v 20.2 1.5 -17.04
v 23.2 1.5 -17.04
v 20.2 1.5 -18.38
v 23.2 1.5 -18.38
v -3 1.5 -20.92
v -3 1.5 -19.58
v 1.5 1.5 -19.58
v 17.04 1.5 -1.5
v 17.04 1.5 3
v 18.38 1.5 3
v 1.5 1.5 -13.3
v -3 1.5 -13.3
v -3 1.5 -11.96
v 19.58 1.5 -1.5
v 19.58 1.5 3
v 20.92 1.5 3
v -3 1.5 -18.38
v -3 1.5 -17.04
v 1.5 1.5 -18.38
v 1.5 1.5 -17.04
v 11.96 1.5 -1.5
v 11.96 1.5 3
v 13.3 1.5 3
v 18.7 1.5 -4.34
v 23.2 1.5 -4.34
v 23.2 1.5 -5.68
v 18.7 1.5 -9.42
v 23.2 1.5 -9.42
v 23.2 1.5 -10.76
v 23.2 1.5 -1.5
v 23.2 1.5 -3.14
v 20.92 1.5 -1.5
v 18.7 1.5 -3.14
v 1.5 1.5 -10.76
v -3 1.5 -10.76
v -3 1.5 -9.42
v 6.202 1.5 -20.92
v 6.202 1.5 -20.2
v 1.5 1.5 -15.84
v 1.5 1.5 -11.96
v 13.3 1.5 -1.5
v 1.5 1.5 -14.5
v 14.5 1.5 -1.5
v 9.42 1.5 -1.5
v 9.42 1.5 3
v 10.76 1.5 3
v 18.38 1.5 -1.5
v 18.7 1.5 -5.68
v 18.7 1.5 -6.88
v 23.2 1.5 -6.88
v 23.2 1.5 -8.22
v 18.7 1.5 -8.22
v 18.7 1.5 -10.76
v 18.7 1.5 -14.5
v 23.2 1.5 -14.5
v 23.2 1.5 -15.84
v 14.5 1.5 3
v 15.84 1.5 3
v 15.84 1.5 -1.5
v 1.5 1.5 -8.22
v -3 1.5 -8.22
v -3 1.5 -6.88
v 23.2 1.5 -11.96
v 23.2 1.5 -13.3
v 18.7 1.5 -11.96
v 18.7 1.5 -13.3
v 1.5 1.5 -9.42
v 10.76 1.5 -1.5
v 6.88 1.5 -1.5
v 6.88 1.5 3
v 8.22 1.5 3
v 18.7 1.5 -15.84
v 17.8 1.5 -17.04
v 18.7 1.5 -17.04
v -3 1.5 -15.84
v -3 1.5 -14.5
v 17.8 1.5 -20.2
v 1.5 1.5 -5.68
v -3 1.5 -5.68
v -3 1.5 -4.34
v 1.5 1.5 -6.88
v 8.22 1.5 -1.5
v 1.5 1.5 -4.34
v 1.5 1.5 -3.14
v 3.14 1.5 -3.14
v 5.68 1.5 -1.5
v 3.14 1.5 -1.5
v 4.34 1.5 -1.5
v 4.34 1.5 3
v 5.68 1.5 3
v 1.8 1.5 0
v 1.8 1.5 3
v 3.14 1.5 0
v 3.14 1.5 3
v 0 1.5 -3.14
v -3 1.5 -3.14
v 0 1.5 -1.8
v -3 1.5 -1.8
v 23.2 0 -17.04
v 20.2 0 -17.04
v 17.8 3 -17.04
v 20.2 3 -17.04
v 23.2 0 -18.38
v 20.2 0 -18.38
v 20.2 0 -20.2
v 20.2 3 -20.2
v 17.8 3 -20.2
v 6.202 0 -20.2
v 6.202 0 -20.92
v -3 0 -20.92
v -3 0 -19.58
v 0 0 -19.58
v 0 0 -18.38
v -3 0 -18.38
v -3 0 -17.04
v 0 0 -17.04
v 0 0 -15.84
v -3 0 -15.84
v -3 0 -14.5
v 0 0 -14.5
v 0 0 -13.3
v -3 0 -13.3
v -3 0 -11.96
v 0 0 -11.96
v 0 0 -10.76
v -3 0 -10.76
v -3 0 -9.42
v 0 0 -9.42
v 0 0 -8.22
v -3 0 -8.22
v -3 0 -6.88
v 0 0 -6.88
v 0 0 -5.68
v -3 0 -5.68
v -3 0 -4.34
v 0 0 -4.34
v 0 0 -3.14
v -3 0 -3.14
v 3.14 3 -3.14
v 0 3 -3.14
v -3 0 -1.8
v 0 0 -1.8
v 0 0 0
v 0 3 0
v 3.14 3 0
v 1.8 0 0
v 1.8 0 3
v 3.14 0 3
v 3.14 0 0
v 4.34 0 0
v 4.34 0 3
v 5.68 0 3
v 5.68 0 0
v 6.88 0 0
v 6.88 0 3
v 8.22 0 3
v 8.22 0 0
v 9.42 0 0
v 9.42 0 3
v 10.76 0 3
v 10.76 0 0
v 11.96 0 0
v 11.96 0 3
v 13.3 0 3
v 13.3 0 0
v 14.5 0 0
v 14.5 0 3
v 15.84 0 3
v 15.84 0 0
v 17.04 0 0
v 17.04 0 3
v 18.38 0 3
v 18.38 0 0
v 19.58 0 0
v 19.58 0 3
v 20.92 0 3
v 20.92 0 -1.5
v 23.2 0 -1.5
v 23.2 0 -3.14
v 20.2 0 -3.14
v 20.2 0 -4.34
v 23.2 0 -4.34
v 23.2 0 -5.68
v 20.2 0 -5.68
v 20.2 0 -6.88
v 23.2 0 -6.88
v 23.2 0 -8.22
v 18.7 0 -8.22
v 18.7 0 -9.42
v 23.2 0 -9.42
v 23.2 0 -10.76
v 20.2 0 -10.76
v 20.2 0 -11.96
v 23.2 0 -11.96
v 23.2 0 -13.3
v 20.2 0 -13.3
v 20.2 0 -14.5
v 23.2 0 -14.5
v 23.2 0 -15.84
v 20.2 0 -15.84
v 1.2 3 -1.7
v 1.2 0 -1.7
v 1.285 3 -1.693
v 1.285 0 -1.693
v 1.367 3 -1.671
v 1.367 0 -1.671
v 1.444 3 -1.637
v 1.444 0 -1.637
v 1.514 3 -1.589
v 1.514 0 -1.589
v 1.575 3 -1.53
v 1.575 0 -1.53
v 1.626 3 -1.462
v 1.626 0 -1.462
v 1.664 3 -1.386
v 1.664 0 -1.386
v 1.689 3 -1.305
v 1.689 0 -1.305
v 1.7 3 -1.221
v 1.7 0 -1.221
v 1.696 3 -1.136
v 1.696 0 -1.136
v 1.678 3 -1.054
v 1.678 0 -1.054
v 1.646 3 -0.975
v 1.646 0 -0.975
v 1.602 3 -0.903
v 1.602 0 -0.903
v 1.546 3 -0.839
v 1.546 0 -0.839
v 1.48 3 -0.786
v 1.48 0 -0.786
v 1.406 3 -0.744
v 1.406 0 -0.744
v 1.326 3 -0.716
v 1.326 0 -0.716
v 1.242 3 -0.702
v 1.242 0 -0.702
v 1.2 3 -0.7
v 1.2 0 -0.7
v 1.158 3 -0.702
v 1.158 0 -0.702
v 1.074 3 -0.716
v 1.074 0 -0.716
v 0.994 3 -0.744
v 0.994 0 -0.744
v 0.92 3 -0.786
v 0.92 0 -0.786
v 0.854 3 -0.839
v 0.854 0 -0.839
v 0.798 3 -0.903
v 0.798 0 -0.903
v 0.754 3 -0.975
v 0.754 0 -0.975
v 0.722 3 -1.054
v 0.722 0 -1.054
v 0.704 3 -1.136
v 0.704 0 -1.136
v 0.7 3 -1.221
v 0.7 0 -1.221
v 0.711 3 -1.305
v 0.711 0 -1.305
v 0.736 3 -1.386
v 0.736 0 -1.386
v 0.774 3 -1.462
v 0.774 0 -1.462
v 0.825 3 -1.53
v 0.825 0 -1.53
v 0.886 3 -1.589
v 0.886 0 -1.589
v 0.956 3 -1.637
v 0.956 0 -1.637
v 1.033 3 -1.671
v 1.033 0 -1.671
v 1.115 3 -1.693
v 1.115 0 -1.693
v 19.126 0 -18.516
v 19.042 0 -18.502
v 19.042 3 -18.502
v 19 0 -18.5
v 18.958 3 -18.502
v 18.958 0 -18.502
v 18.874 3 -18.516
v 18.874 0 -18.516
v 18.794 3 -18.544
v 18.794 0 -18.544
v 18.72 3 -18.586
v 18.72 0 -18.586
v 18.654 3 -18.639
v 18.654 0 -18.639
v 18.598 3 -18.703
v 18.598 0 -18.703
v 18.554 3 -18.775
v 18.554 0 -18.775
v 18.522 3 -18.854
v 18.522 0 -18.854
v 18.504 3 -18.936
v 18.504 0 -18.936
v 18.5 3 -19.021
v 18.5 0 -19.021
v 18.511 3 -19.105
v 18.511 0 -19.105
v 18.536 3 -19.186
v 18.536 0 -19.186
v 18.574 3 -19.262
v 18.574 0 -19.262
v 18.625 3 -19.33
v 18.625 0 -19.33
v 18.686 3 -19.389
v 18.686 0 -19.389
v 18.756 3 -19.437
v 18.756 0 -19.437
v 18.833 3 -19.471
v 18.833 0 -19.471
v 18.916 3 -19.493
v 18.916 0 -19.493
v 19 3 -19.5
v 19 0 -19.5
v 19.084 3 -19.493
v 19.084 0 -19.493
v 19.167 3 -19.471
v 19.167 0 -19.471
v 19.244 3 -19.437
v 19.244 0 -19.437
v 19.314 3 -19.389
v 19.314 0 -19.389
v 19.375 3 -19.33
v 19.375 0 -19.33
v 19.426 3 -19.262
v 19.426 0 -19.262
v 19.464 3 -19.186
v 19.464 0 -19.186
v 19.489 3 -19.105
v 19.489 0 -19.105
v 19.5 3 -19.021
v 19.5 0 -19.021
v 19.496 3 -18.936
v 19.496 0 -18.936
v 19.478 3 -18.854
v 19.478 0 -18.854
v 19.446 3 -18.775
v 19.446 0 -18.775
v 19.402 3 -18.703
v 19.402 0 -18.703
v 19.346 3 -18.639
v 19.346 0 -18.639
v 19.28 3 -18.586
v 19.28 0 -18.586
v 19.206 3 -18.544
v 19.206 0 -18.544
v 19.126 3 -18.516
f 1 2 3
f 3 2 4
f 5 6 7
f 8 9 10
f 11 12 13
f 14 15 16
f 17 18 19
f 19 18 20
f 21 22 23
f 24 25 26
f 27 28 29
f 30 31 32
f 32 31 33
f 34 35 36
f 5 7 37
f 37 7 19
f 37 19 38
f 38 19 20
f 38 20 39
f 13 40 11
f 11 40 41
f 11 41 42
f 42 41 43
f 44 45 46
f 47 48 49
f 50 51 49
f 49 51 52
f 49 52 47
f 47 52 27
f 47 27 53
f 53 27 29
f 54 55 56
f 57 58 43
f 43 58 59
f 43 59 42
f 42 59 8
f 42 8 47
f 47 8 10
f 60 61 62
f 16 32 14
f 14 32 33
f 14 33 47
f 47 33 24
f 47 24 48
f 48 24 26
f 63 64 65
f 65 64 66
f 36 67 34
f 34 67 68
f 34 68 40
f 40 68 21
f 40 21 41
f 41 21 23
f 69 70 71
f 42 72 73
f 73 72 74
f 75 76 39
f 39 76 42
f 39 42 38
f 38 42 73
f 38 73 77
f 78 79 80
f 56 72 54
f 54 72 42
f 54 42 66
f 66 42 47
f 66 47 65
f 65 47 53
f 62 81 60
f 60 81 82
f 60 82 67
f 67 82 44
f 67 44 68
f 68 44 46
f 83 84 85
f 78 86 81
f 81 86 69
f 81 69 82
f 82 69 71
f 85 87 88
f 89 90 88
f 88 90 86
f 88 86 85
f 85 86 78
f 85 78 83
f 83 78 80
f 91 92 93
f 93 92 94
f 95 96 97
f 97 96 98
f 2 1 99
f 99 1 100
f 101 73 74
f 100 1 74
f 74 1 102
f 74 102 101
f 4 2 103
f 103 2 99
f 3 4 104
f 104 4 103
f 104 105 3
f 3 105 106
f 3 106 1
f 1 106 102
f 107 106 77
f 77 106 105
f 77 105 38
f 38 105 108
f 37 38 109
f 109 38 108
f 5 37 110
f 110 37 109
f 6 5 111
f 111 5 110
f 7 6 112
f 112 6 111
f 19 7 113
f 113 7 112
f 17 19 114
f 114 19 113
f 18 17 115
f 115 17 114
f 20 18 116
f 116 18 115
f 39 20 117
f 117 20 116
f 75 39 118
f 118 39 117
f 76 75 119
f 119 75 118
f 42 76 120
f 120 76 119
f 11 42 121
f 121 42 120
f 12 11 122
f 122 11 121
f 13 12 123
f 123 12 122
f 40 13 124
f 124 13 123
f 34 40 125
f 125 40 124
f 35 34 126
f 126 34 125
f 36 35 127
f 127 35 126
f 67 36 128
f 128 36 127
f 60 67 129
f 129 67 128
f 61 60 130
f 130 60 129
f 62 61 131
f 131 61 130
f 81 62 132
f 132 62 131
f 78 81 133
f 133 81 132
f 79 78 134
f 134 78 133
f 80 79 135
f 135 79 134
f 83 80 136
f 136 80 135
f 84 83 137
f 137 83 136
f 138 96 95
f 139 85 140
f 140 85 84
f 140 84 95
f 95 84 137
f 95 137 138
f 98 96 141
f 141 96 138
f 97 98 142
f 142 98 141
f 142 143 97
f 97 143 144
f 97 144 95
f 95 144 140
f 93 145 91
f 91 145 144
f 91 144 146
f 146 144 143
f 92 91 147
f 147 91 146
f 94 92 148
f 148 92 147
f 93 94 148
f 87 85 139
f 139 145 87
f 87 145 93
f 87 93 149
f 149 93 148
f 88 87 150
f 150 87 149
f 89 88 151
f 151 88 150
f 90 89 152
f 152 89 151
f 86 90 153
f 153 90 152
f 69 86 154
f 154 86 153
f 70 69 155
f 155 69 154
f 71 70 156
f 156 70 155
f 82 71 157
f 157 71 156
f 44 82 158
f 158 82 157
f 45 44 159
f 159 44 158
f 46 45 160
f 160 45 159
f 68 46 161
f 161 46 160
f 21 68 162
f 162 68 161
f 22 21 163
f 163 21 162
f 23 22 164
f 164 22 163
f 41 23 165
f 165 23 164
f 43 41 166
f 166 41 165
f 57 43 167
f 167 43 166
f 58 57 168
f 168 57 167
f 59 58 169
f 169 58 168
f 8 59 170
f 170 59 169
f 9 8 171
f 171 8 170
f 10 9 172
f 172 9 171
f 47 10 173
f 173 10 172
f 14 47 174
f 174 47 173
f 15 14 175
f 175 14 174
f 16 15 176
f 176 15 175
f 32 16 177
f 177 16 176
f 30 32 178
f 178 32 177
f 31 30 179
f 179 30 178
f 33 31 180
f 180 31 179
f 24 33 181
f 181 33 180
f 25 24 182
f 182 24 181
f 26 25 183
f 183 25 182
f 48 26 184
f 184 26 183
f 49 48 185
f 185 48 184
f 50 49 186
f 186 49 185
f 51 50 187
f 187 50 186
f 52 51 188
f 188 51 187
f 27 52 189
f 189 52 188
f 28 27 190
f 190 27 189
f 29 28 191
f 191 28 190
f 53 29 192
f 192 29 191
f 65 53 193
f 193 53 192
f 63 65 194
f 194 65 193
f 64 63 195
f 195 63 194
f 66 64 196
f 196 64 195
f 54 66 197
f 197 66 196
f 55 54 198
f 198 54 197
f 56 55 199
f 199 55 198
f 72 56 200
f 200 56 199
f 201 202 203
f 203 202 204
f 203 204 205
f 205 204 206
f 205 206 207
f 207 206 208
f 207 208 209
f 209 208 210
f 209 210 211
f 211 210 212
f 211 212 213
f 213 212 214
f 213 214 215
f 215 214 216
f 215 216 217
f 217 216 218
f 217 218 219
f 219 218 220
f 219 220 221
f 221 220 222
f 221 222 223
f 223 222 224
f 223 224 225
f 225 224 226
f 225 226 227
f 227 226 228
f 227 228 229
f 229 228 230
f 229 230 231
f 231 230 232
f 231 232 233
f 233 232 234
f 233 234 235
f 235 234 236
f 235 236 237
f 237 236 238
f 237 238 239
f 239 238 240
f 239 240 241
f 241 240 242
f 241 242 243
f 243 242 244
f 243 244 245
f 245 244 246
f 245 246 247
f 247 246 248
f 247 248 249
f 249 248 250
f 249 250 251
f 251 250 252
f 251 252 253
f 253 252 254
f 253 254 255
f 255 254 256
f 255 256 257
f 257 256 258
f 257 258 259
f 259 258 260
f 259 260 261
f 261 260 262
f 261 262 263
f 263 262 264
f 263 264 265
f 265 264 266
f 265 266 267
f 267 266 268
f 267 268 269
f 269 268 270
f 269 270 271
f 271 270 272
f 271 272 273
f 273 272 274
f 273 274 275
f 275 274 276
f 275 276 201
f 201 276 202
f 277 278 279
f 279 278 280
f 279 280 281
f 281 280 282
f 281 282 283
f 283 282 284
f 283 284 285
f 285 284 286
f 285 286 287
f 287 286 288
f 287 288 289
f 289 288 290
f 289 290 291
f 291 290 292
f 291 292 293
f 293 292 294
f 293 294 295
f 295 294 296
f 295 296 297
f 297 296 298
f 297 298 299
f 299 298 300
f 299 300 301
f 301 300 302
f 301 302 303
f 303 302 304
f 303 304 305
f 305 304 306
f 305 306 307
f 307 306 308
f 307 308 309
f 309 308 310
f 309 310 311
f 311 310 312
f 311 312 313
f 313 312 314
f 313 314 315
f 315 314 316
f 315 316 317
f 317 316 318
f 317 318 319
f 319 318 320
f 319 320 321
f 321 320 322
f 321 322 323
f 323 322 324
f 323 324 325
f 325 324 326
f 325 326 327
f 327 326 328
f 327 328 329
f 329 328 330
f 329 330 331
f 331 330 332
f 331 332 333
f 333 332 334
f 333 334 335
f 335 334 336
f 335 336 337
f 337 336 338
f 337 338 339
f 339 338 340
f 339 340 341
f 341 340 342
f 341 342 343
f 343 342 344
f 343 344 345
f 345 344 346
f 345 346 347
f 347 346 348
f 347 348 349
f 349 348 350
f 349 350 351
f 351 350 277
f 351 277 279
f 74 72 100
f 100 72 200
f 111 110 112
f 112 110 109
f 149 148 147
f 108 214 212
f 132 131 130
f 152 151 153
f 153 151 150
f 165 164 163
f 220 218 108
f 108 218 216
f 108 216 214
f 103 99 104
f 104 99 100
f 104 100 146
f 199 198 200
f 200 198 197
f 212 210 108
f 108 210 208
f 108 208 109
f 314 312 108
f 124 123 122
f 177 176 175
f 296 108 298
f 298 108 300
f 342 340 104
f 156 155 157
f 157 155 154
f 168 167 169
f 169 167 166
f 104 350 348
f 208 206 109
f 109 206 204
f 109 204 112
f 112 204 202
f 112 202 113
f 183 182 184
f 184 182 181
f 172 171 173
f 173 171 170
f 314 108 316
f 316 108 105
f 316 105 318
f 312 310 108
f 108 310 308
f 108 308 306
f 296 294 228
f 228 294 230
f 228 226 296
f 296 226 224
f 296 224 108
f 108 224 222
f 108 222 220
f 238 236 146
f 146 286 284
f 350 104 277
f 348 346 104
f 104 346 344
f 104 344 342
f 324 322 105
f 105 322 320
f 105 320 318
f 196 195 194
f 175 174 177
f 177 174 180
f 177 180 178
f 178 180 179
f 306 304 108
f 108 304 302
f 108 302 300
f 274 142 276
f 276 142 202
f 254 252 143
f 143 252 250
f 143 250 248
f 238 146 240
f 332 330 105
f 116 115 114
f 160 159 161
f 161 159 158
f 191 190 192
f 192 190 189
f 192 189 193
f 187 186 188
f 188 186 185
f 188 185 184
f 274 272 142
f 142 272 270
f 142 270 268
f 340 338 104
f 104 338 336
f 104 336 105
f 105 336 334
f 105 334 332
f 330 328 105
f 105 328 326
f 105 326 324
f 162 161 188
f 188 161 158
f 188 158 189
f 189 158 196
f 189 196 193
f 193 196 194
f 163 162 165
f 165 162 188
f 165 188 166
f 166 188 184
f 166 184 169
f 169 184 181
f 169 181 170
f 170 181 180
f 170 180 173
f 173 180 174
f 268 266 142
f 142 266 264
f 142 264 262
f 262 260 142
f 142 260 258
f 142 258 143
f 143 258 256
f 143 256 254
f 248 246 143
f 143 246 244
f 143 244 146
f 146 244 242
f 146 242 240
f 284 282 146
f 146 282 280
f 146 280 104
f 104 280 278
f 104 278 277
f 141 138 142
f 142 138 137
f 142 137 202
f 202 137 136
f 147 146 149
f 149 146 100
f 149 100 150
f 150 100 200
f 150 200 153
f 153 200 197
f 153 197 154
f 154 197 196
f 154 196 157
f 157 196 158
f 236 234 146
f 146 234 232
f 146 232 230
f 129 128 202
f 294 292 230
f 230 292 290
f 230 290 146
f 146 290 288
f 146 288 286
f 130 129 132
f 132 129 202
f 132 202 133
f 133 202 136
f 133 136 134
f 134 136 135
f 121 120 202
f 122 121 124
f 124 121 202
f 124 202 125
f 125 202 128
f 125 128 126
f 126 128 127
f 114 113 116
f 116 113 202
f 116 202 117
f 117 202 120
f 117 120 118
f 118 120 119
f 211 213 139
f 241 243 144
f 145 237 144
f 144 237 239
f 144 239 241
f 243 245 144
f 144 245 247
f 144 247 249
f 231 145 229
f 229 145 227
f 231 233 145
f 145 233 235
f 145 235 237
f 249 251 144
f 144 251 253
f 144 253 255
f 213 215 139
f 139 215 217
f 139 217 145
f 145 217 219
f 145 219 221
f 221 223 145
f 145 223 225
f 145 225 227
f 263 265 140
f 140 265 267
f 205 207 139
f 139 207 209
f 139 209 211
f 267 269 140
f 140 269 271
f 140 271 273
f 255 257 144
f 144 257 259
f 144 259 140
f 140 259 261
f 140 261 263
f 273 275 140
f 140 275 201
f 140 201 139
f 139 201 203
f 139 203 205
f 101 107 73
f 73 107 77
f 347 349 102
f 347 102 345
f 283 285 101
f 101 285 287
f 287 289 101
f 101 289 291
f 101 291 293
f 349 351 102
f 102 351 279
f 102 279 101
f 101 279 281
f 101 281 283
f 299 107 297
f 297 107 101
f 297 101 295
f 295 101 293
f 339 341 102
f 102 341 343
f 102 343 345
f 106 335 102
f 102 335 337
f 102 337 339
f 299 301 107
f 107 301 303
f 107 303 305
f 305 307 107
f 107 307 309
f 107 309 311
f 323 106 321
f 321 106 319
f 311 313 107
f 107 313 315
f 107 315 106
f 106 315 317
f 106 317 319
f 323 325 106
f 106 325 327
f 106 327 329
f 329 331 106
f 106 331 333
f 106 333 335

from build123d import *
from build123d.topology import SkipClean

# Parameters (mm, degrees)
BASE_OUTLINE_R      = 0.5
BOSS_EXTRUDE1_DEPTH = 1.5
DRAFT2_ANGLE        = 45
BOSS_EXTRUDE2_DEPTH = 1.5
SKETCH1_3_R         = 0.5
CUT_EXTRUDE1_DEPTH  = 5.5


with BuildPart() as part:
    # Base outline → Boss-Extrude1 (new body)
    with BuildSketch(Plane(origin=(0, 0, 0), x_dir=(1, 0, 0), z_dir=(0, 1, 0))):
        Polygon((20.2, 20.2), (6.201628494, 20.2), (6.201628494, 20.92), (-3, 20.92), (-3, 19.58), (0, 19.58), (1.5, 19.58), (1.5, 18.38), (0, 18.38), (-3, 18.38), (-3, 17.04), (0, 17.04), (1.5, 17.04), (1.5, 15.84), (0, 15.84), (-3, 15.84), (-3, 14.5), (0, 14.5), (1.5, 14.5), (1.5, 13.3), (0, 13.3), (-3, 13.3), (-3, 11.96), (0, 11.96), (1.5, 11.96), (1.5, 10.76), (0, 10.76), (-3, 10.76), (-3, 9.42), (0, 9.42), (1.5, 9.42), (1.5, 8.22), (0, 8.22), (-3, 8.22), (-3, 6.88), (0, 6.88), (1.5, 6.88), (1.5, 5.68), (0, 5.68), (-3, 5.68), (-3, 4.34), (0, 4.34), (1.5, 4.34), (1.5, 3.14), (0, 3.14), (-3, 3.14), (-3, 1.8), (0, 1.8), (0, 0), (1.8, 0), (1.8, -3), (3.14, -3), (3.14, 0), (3.14, 1.5), (4.34, 1.5), (4.34, 0), (4.34, -3), (5.68, -3), (5.68, 0), (5.68, 1.5), (6.88, 1.5), (6.88, 0), (6.88, -3), (8.22, -3), (8.22, 0), (8.22, 1.5), (9.42, 1.5), (9.42, 0), (9.42, -3), (10.76, -3), (10.76, 0), (10.76, 1.5), (11.96, 1.5), (11.96, 0), (11.96, -3), (13.3, -3), (13.3, 0), (13.3, 1.5), (14.5, 1.5), (14.5, 0), (14.5, -3), (15.84, -3), (15.84, 0), (15.84, 1.5), (17.04, 1.5), (17.04, 0), (17.04, -3), (18.38, -3), (18.38, 0), (18.38, 1.5), (19.58, 1.5), (19.58, 0), (19.58, -3), (20.92, -3), (20.92, 1.5), (23.2, 1.5), (23.2, 3.14), (20.2, 3.14), (18.7, 3.14), (18.7, 4.34), (20.2, 4.34), (23.2, 4.34), (23.2, 5.68), (20.2, 5.68), (18.7, 5.68), (18.7, 6.88), (20.2, 6.88), (23.2, 6.88), (23.2, 8.22), (20.2, 8.22), (18.7, 8.22), (18.7, 9.42), (20.2, 9.42), (23.2, 9.42), (23.2, 10.76), (20.2, 10.76), (18.7, 10.76), (18.7, 11.96), (20.2, 11.96), (23.2, 11.96), (23.2, 13.3), (20.2, 13.3), (18.7, 13.3), (18.7, 14.5), (20.2, 14.5), (23.2, 14.5), (23.2, 15.84), (20.2, 15.84), (18.7, 15.84), (18.7, 17.04), (20.2, 17.04), (23.2, 17.04), (23.2, 18.38), (20.2, 18.38), (20.2, 19.58), align=None)
        with Locations((1.2, 1.2)):
            Circle(BASE_OUTLINE_R, mode=Mode.SUBTRACT)
        with BuildLine():
            ThreePointArc((18.7, 18.6), (18.5, 19), (18.7, 19.4))
            ThreePointArc((18.7, 19.4), (19.223606798, 19.447213595), (19.5, 19))
            ThreePointArc((19.5, 19), (19.223606798, 18.552786405), (18.7, 18.6))
        make_face(mode=Mode.SUBTRACT)
    extrude(amount=BOSS_EXTRUDE1_DEPTH)

    # Draft2
    draft2_faces = [part.faces().sort_by_distance(p)[0] for p in [
        (1.5, 0.75, -18.98),
        (1.5, 0.75, -16.44),
        (1.5, 0.75, -13.9),
        (1.5, 0.75, -11.36),
        (1.5, 0.75, -8.82),
        (1.5, 0.75, -6.28),
        (1.5, 0.75, -3.74),
        (18.7, 0.75, -16.44),
        (18.7, 0.75, -13.9),
        (18.7, 0.75, -11.36),
        (18.7, 0.75, -6.28),
        (18.7, 0.75, -3.74),
        (18.98, 0.75, -1.5),
        (16.44, 0.75, -1.5),
        (13.9, 0.75, -1.5),
        (11.36, 0.75, -1.5),
        (8.82, 0.75, -1.5),
        (6.28, 0.75, -1.5),
        (3.74, 0.75, -1.5),
    ]]
    draft(draft2_faces, Plane.ZX.offset(1.5), DRAFT2_ANGLE)

    # Spacer outline → Boss-Extrude2 (add)
    with BuildSketch(Plane(origin=(0, 1.5, 0), x_dir=(1, 0, 0), z_dir=(0, 1, 0))):
        Polygon((0, 1.8), (0, 3.14), (1.5, 3.14), (3.14, 3.14), (3.14, 1.5), (3.14, 0), (1.8, 0), (0, 0), align=None)
        Polygon((18.7, 17.04), (17.8, 17.04), (17.8, 20.2), (20.2, 20.2), (20.2, 18.38), (20.2, 17.04), align=None)
    extrude(amount=BOSS_EXTRUDE2_DEPTH)

    # Sketch1<3> → Cut-Extrude1 (cut)
    with SkipClean():  # the faces are left unmerged after this step: merging them gives an invalid solid
        with BuildSketch(Plane(origin=(0, 0, 0), x_dir=(1, 0, 0), z_dir=(0, 1, 0))):
            with Locations((1.2, 1.2)):
                Circle(SKETCH1_3_R)
            with Locations((19, 19)):
                Circle(SKETCH1_3_R)
        extrude(amount=CUT_EXTRUDE1_DEPTH, mode=Mode.SUBTRACT)


solid = part.part
